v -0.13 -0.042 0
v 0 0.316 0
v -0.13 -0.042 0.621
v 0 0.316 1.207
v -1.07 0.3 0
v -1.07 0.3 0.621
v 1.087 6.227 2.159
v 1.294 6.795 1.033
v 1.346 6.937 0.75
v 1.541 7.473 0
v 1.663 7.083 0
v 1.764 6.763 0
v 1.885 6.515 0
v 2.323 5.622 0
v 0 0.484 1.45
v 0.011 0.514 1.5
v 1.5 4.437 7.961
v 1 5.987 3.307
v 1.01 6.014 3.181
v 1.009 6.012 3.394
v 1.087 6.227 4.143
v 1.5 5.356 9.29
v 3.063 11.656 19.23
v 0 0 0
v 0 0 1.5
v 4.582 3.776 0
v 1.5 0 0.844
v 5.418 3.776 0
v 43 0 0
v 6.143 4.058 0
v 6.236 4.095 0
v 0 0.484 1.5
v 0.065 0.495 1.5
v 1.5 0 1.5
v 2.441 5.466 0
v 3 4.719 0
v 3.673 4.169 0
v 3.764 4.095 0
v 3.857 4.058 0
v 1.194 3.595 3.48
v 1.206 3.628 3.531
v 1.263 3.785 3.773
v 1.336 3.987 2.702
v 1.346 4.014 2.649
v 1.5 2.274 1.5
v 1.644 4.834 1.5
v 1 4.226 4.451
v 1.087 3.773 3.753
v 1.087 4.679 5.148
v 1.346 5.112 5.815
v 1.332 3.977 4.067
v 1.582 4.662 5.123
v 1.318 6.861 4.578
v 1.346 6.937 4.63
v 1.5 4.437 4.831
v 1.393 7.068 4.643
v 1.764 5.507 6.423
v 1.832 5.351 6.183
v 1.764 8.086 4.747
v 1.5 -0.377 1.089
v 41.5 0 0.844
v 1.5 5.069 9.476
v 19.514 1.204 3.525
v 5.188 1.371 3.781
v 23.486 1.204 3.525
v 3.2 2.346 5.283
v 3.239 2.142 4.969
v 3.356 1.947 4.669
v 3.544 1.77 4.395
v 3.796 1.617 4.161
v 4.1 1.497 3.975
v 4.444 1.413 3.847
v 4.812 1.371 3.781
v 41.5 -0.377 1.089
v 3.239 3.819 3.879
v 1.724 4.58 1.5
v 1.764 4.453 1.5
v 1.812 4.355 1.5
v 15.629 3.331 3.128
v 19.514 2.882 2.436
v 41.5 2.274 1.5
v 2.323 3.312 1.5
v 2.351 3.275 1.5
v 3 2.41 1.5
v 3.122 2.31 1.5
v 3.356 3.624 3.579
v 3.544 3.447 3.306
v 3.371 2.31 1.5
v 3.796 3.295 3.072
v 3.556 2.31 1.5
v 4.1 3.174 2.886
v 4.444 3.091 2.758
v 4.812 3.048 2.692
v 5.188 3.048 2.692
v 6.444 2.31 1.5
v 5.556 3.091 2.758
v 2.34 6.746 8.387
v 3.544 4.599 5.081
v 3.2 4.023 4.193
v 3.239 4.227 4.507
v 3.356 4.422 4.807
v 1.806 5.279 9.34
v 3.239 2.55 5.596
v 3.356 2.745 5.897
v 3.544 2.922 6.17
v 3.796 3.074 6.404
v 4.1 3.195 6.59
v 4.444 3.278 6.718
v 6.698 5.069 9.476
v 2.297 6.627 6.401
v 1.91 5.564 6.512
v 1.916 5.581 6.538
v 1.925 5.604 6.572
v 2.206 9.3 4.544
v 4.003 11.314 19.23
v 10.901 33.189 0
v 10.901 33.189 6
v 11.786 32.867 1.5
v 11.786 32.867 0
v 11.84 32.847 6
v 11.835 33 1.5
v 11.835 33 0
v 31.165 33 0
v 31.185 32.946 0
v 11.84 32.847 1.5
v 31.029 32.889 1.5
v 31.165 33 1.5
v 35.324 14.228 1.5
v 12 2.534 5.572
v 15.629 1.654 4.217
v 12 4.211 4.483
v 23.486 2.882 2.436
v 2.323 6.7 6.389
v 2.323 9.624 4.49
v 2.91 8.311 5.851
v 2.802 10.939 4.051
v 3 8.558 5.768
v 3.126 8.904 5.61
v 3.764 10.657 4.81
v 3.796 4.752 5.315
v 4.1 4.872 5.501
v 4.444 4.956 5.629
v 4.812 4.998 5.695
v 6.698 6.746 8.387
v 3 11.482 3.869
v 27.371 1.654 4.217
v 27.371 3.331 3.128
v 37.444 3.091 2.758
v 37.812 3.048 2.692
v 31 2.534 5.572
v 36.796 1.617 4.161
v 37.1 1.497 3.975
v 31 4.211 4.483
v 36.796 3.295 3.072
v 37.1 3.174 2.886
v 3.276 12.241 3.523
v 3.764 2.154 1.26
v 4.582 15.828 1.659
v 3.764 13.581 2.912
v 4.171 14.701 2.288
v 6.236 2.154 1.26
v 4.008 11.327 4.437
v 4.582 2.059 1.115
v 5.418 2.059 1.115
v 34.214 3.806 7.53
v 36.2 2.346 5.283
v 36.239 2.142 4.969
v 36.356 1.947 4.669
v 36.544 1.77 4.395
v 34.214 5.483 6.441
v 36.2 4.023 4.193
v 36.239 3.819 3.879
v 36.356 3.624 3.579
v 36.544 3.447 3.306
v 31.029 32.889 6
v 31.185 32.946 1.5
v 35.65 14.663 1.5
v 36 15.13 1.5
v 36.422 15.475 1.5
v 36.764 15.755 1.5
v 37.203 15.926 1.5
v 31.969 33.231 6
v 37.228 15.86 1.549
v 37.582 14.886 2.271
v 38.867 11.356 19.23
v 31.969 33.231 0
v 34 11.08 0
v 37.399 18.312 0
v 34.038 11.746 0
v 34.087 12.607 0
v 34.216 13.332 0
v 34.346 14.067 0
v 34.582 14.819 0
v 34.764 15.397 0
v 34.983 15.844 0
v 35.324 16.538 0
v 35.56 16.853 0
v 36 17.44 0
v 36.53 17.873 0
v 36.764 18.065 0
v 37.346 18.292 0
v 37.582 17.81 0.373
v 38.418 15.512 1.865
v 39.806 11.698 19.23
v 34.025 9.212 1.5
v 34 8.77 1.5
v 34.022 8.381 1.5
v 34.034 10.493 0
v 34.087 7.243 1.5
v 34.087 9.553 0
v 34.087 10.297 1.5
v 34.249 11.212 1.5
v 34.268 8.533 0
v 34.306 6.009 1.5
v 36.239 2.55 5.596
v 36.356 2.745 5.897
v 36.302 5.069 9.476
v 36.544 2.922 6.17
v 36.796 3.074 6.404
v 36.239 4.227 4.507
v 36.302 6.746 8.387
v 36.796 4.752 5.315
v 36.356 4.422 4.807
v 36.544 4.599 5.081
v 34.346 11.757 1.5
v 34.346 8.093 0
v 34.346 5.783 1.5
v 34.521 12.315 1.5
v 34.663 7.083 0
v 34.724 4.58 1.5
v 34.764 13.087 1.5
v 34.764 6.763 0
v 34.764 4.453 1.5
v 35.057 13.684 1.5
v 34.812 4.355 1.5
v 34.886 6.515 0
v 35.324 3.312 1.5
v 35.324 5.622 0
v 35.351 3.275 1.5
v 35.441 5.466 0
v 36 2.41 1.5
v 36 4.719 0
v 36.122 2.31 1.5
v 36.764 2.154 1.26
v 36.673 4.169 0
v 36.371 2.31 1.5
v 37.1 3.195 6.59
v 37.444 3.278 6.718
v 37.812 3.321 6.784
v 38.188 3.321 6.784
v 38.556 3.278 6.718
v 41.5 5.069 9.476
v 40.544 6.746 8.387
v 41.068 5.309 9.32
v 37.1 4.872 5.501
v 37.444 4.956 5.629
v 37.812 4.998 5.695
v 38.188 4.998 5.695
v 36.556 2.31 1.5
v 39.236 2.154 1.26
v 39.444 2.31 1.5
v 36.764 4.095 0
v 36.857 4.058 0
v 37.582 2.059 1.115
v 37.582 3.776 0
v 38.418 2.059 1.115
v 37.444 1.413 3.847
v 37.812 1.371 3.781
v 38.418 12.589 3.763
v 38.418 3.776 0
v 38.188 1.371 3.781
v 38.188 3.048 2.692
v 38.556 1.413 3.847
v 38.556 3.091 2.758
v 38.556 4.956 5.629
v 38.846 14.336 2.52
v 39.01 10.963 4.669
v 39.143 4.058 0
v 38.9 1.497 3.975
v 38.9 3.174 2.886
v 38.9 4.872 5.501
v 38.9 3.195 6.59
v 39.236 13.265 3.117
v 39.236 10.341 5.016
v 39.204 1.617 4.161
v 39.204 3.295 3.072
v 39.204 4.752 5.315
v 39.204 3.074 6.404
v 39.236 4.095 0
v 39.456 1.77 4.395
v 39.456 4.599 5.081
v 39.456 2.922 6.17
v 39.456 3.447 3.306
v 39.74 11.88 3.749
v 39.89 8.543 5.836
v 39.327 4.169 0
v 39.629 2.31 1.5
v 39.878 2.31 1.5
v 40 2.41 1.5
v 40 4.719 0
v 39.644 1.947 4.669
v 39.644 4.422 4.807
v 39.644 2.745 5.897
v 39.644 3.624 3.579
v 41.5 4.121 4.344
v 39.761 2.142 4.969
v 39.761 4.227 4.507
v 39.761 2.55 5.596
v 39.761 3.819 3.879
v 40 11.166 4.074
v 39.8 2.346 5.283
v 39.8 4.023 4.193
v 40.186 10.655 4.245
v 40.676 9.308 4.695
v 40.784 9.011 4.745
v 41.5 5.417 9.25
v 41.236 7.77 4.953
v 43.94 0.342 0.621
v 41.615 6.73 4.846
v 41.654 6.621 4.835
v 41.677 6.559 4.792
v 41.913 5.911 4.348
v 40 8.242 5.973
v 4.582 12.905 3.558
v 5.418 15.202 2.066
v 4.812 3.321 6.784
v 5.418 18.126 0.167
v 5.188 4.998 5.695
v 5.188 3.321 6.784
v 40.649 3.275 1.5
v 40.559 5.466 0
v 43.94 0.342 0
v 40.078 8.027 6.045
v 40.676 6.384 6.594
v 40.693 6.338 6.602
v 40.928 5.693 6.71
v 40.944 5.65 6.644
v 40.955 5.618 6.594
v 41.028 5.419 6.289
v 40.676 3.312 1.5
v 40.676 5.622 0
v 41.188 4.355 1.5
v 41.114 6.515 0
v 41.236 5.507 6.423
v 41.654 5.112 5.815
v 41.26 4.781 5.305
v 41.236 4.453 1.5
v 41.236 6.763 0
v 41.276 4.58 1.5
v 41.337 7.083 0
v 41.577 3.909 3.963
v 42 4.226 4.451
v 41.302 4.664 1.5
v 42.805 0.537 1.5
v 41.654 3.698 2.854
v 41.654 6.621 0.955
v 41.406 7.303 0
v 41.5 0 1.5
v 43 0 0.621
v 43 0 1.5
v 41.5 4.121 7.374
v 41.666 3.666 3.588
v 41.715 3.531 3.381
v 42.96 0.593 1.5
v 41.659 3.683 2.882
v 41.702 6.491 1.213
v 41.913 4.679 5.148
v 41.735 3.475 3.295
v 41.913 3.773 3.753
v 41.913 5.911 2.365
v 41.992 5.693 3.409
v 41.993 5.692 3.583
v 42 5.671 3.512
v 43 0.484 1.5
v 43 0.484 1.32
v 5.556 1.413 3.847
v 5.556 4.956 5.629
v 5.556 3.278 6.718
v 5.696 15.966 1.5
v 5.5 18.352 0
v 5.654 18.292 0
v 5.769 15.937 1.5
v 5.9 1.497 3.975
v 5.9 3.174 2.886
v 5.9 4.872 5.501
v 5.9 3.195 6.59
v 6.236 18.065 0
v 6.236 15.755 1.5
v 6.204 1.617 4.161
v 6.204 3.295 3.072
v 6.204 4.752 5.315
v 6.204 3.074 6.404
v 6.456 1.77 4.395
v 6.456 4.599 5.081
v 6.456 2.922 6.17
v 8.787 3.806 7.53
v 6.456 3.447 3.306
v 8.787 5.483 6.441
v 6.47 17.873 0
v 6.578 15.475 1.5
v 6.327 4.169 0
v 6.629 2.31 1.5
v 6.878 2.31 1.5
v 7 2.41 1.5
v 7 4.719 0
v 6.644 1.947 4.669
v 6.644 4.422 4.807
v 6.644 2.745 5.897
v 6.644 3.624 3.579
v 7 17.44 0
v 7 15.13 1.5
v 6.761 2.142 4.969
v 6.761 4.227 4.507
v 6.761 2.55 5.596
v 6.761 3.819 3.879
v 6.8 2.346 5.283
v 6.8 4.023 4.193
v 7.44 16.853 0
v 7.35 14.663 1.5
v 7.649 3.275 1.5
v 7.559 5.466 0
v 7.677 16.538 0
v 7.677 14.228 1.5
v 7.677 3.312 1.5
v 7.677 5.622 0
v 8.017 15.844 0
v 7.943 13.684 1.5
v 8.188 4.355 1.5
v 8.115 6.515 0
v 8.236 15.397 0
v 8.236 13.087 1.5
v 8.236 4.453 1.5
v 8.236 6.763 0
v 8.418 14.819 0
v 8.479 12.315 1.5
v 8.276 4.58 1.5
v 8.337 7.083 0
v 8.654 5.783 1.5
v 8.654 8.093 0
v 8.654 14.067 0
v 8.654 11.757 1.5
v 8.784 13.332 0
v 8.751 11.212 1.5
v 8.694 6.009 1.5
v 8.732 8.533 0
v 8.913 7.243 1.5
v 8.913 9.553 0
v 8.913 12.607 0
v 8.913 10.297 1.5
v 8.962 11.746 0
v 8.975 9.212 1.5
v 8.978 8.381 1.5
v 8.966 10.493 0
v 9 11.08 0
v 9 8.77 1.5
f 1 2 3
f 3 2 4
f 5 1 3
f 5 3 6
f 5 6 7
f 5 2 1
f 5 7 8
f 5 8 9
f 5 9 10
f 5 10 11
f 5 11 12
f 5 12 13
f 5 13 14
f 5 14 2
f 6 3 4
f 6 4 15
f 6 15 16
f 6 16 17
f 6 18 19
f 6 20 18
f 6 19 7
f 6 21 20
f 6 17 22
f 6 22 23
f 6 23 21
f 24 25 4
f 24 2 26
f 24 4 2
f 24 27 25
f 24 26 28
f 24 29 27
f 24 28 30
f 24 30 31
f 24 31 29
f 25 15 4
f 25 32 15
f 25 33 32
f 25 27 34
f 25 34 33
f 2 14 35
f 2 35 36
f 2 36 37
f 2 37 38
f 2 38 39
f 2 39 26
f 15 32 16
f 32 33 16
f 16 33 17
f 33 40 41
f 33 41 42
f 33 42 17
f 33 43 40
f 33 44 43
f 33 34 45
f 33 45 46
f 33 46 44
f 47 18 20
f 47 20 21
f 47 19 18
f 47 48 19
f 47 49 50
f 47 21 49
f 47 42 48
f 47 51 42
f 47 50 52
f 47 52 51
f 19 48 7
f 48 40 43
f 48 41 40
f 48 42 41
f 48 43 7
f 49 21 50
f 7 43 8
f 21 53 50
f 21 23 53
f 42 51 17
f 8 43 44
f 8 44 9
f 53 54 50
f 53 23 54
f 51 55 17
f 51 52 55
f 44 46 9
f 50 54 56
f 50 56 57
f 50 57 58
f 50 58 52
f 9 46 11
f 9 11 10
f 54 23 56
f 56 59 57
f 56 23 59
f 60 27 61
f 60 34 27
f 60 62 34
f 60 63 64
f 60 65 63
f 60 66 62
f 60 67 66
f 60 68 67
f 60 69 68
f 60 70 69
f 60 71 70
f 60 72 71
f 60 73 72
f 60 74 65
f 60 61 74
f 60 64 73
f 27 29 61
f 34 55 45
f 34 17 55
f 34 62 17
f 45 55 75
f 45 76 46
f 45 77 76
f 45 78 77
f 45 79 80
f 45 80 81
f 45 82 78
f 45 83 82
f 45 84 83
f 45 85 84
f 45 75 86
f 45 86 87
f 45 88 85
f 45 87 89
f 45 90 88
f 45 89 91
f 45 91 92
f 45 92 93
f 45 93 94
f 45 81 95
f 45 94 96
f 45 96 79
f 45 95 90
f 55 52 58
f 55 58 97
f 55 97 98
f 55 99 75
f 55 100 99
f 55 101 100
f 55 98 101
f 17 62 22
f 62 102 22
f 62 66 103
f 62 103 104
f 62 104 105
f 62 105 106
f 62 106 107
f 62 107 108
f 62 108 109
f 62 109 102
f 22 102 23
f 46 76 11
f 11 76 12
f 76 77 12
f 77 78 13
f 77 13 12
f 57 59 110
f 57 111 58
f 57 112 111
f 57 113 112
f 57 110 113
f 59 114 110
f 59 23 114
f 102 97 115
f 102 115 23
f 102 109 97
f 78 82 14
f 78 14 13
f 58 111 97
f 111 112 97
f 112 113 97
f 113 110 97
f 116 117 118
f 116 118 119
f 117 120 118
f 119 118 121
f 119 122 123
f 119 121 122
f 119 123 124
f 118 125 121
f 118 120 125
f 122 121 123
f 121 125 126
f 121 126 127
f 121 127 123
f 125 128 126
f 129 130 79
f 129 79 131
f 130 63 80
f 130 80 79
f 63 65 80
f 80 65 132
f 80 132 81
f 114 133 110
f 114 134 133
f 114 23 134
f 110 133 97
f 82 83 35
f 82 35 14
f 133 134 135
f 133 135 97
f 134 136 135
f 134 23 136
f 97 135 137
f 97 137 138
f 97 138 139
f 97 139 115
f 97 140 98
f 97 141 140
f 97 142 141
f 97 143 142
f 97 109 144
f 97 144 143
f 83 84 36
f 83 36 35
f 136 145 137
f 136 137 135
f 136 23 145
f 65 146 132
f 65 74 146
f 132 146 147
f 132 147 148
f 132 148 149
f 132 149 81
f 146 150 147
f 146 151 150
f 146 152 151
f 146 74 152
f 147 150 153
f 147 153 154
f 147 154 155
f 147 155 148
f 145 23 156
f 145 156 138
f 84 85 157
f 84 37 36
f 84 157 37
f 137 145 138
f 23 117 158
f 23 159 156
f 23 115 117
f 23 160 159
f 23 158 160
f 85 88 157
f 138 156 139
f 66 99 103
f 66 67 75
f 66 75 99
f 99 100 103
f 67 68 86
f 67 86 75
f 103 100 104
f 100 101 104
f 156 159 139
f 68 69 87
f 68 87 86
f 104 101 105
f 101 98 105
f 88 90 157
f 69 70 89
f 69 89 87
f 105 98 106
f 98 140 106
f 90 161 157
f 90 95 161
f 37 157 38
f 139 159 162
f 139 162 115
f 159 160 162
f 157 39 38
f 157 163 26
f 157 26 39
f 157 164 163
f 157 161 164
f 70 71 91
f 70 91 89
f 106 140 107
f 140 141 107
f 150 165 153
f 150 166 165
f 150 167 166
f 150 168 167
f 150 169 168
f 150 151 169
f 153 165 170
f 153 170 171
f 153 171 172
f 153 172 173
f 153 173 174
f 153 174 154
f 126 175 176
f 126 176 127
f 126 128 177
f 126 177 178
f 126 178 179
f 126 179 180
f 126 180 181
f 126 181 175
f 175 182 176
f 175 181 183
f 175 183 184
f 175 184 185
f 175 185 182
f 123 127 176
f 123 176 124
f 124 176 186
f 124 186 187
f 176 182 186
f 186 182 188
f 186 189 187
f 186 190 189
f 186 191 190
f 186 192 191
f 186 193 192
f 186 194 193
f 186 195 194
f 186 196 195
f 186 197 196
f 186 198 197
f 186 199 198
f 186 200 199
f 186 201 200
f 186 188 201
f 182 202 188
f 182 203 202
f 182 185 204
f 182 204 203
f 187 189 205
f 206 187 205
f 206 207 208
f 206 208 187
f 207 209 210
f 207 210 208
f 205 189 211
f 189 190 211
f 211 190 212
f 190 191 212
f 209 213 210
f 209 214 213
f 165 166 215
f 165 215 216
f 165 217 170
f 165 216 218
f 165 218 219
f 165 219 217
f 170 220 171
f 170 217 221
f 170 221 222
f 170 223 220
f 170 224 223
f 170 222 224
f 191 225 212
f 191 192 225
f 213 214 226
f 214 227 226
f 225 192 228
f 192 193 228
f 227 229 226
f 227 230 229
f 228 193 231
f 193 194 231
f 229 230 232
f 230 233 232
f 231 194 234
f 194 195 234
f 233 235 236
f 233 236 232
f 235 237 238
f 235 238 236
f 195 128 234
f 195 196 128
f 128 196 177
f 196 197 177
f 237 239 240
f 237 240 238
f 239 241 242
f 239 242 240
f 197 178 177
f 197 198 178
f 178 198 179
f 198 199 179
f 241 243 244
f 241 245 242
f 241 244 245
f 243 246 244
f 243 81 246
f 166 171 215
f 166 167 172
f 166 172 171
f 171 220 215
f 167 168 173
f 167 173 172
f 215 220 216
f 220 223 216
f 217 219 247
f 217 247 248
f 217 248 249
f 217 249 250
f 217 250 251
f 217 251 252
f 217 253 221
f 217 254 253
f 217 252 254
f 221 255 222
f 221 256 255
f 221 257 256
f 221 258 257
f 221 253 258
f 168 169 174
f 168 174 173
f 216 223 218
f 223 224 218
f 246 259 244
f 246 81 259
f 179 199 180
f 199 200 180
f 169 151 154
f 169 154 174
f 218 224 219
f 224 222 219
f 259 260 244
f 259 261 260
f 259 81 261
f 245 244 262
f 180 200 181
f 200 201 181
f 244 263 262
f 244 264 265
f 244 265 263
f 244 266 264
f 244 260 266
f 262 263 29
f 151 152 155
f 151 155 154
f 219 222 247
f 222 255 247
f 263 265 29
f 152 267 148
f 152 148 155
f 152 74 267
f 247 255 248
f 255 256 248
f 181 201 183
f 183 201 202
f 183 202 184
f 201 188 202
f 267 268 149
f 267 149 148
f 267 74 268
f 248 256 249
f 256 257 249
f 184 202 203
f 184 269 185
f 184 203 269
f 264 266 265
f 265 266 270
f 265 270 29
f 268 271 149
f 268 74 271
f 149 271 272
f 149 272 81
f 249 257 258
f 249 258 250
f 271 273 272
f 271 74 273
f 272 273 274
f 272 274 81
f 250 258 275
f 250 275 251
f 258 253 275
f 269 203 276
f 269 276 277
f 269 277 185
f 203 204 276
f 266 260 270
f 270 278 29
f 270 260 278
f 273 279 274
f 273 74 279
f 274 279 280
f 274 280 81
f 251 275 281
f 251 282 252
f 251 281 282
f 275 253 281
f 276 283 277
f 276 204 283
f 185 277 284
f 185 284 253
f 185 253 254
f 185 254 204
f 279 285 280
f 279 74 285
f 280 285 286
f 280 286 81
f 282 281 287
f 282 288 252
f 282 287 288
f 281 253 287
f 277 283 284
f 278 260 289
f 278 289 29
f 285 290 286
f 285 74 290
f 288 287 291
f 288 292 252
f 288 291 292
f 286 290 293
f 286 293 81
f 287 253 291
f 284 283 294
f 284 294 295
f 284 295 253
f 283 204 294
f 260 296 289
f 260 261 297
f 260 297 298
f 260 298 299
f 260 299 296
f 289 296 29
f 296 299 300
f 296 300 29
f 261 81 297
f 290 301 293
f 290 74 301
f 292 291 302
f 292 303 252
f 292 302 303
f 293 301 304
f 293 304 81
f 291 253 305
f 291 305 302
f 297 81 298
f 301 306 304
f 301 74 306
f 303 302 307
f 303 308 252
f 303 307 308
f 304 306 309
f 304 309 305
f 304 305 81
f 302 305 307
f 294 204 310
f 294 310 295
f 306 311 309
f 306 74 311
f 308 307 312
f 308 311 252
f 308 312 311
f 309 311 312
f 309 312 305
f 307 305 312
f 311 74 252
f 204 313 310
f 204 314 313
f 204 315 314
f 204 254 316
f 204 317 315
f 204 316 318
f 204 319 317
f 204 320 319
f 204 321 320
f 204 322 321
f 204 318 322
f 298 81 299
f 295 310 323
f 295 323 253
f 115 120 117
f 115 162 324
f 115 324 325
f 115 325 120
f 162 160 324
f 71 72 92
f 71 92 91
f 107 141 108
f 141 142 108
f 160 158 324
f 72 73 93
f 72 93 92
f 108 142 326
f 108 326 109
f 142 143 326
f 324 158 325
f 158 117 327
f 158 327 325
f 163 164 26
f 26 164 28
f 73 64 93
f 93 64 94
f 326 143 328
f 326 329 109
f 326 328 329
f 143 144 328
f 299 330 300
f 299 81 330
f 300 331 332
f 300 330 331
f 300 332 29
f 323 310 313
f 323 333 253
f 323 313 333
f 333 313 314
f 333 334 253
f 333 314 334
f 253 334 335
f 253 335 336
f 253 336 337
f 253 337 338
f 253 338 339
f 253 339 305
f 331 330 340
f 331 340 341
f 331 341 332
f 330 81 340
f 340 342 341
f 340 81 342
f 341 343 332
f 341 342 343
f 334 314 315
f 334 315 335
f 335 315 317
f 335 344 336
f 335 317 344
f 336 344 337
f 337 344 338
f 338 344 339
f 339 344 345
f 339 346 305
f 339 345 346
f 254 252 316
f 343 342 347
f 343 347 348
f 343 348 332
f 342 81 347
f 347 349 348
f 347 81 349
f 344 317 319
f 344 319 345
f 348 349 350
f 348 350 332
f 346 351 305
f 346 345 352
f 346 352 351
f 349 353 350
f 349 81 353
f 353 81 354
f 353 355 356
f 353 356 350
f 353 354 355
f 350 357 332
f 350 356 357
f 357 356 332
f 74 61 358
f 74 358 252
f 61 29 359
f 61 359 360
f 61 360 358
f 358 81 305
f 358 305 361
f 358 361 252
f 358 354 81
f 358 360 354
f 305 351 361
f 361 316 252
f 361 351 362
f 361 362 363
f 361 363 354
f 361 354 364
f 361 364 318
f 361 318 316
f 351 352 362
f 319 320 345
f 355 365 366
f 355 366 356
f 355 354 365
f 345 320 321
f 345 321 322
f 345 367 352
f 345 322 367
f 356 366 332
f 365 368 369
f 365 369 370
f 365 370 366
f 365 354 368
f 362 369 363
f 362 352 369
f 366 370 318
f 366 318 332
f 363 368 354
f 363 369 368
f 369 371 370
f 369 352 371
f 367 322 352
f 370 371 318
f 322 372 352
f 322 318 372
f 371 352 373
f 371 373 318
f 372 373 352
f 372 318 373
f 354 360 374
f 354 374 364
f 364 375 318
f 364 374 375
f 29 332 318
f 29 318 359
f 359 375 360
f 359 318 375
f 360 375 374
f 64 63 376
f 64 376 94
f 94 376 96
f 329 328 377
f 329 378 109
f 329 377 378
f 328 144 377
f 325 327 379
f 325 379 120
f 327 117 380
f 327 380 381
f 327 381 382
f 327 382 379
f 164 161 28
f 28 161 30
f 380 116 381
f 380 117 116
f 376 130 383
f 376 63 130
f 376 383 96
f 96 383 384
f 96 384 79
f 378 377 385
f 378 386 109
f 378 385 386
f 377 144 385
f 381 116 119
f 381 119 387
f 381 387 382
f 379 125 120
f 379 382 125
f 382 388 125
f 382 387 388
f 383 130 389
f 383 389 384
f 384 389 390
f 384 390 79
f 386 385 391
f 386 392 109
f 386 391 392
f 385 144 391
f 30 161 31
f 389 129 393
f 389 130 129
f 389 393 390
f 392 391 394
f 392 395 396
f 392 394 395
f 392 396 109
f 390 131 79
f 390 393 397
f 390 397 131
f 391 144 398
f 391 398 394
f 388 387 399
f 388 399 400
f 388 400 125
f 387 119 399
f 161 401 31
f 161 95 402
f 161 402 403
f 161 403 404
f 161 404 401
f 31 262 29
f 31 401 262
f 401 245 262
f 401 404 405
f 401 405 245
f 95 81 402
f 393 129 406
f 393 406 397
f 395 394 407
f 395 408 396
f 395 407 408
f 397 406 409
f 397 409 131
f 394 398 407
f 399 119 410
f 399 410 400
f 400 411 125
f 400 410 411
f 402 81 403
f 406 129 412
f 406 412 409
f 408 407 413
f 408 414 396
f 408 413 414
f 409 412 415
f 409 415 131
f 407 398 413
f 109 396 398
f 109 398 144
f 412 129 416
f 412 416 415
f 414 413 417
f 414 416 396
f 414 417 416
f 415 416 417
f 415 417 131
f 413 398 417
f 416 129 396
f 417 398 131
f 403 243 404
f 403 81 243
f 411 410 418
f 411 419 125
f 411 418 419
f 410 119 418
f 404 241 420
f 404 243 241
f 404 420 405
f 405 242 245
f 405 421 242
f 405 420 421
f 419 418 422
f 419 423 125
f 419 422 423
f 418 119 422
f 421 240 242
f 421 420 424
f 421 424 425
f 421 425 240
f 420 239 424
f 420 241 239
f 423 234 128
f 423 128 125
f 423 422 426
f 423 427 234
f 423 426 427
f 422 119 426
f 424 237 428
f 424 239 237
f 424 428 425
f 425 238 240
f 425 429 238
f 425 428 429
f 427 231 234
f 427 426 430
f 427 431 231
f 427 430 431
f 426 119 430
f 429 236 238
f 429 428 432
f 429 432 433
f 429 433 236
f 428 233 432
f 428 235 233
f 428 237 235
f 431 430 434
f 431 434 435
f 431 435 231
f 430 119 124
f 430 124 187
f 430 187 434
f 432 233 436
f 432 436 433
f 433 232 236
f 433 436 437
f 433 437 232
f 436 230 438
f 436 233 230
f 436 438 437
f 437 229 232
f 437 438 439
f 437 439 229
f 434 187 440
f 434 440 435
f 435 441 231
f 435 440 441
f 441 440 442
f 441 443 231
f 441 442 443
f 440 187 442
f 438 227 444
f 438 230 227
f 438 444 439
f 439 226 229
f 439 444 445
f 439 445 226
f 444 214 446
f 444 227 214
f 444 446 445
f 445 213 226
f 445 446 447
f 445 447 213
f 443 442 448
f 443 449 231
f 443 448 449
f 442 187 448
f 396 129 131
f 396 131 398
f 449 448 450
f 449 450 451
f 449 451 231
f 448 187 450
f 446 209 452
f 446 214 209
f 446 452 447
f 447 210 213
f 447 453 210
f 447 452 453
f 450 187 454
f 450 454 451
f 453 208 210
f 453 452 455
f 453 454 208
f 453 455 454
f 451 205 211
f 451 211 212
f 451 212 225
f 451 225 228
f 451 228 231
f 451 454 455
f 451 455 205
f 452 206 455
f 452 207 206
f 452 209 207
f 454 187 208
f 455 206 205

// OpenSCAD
$fn=30;

uhel = 57;

module uchyt() {
    sirka = 40;
    delka = 10;
    difference() {
        cube([40, delka, 2]);
        translate([1.8+1.7, delka/2, 0]) cylinder(r=3.6/2, h=2);
        translate([40-(1.8+1.7), delka/2, 0]) cylinder(r=3.6/2, h=2);
        translate([sirka/2, sirka/2+1.8, 0]) cylinder(r=38/2, h=2);
    }
}
module bok() {
    difference() {
        cube([1, 35, 20]);
        translate([0, -16.5, 0]) rotate([-(90-uhel), 0, 0]) cube([1, 13.5, 40]);
        translate([0, 35, 6]) rotate([60, 0, 0]) cube([1, 30, 50]);
    }
}
difference() {
    union() {
        union() {
        translate([-1.07, 0.3, 0]) rotate([0, 0, -20]) bok();
        translate([43, 0, 0]) rotate([0, 0, 20]) bok();
        translate([1.5, 1.3, 0]) rotate([uhel, 0, 0]) uchyt();
        }
        union() {
            difference() {
                cube([43, 33, 1.5]);
                translate([-16, 15, 1]) rotate([0, 0, -20]) cube([40, 60, 2], center=true);
                translate([59, 15, 1]) rotate([0, 0, 20]) cube([40, 60, 2], center=true);
            }
        }
    }
    #translate([5, 8, 2]) rotate([uhel, 0, 0]) translate([0, 0, -15.5]) cylinder(r=4, h=20);
    #translate([38, 8, 2]) rotate([uhel, 0, 0]) translate([0, 0, -15.5]) cylinder(r=4, h=20);
}
